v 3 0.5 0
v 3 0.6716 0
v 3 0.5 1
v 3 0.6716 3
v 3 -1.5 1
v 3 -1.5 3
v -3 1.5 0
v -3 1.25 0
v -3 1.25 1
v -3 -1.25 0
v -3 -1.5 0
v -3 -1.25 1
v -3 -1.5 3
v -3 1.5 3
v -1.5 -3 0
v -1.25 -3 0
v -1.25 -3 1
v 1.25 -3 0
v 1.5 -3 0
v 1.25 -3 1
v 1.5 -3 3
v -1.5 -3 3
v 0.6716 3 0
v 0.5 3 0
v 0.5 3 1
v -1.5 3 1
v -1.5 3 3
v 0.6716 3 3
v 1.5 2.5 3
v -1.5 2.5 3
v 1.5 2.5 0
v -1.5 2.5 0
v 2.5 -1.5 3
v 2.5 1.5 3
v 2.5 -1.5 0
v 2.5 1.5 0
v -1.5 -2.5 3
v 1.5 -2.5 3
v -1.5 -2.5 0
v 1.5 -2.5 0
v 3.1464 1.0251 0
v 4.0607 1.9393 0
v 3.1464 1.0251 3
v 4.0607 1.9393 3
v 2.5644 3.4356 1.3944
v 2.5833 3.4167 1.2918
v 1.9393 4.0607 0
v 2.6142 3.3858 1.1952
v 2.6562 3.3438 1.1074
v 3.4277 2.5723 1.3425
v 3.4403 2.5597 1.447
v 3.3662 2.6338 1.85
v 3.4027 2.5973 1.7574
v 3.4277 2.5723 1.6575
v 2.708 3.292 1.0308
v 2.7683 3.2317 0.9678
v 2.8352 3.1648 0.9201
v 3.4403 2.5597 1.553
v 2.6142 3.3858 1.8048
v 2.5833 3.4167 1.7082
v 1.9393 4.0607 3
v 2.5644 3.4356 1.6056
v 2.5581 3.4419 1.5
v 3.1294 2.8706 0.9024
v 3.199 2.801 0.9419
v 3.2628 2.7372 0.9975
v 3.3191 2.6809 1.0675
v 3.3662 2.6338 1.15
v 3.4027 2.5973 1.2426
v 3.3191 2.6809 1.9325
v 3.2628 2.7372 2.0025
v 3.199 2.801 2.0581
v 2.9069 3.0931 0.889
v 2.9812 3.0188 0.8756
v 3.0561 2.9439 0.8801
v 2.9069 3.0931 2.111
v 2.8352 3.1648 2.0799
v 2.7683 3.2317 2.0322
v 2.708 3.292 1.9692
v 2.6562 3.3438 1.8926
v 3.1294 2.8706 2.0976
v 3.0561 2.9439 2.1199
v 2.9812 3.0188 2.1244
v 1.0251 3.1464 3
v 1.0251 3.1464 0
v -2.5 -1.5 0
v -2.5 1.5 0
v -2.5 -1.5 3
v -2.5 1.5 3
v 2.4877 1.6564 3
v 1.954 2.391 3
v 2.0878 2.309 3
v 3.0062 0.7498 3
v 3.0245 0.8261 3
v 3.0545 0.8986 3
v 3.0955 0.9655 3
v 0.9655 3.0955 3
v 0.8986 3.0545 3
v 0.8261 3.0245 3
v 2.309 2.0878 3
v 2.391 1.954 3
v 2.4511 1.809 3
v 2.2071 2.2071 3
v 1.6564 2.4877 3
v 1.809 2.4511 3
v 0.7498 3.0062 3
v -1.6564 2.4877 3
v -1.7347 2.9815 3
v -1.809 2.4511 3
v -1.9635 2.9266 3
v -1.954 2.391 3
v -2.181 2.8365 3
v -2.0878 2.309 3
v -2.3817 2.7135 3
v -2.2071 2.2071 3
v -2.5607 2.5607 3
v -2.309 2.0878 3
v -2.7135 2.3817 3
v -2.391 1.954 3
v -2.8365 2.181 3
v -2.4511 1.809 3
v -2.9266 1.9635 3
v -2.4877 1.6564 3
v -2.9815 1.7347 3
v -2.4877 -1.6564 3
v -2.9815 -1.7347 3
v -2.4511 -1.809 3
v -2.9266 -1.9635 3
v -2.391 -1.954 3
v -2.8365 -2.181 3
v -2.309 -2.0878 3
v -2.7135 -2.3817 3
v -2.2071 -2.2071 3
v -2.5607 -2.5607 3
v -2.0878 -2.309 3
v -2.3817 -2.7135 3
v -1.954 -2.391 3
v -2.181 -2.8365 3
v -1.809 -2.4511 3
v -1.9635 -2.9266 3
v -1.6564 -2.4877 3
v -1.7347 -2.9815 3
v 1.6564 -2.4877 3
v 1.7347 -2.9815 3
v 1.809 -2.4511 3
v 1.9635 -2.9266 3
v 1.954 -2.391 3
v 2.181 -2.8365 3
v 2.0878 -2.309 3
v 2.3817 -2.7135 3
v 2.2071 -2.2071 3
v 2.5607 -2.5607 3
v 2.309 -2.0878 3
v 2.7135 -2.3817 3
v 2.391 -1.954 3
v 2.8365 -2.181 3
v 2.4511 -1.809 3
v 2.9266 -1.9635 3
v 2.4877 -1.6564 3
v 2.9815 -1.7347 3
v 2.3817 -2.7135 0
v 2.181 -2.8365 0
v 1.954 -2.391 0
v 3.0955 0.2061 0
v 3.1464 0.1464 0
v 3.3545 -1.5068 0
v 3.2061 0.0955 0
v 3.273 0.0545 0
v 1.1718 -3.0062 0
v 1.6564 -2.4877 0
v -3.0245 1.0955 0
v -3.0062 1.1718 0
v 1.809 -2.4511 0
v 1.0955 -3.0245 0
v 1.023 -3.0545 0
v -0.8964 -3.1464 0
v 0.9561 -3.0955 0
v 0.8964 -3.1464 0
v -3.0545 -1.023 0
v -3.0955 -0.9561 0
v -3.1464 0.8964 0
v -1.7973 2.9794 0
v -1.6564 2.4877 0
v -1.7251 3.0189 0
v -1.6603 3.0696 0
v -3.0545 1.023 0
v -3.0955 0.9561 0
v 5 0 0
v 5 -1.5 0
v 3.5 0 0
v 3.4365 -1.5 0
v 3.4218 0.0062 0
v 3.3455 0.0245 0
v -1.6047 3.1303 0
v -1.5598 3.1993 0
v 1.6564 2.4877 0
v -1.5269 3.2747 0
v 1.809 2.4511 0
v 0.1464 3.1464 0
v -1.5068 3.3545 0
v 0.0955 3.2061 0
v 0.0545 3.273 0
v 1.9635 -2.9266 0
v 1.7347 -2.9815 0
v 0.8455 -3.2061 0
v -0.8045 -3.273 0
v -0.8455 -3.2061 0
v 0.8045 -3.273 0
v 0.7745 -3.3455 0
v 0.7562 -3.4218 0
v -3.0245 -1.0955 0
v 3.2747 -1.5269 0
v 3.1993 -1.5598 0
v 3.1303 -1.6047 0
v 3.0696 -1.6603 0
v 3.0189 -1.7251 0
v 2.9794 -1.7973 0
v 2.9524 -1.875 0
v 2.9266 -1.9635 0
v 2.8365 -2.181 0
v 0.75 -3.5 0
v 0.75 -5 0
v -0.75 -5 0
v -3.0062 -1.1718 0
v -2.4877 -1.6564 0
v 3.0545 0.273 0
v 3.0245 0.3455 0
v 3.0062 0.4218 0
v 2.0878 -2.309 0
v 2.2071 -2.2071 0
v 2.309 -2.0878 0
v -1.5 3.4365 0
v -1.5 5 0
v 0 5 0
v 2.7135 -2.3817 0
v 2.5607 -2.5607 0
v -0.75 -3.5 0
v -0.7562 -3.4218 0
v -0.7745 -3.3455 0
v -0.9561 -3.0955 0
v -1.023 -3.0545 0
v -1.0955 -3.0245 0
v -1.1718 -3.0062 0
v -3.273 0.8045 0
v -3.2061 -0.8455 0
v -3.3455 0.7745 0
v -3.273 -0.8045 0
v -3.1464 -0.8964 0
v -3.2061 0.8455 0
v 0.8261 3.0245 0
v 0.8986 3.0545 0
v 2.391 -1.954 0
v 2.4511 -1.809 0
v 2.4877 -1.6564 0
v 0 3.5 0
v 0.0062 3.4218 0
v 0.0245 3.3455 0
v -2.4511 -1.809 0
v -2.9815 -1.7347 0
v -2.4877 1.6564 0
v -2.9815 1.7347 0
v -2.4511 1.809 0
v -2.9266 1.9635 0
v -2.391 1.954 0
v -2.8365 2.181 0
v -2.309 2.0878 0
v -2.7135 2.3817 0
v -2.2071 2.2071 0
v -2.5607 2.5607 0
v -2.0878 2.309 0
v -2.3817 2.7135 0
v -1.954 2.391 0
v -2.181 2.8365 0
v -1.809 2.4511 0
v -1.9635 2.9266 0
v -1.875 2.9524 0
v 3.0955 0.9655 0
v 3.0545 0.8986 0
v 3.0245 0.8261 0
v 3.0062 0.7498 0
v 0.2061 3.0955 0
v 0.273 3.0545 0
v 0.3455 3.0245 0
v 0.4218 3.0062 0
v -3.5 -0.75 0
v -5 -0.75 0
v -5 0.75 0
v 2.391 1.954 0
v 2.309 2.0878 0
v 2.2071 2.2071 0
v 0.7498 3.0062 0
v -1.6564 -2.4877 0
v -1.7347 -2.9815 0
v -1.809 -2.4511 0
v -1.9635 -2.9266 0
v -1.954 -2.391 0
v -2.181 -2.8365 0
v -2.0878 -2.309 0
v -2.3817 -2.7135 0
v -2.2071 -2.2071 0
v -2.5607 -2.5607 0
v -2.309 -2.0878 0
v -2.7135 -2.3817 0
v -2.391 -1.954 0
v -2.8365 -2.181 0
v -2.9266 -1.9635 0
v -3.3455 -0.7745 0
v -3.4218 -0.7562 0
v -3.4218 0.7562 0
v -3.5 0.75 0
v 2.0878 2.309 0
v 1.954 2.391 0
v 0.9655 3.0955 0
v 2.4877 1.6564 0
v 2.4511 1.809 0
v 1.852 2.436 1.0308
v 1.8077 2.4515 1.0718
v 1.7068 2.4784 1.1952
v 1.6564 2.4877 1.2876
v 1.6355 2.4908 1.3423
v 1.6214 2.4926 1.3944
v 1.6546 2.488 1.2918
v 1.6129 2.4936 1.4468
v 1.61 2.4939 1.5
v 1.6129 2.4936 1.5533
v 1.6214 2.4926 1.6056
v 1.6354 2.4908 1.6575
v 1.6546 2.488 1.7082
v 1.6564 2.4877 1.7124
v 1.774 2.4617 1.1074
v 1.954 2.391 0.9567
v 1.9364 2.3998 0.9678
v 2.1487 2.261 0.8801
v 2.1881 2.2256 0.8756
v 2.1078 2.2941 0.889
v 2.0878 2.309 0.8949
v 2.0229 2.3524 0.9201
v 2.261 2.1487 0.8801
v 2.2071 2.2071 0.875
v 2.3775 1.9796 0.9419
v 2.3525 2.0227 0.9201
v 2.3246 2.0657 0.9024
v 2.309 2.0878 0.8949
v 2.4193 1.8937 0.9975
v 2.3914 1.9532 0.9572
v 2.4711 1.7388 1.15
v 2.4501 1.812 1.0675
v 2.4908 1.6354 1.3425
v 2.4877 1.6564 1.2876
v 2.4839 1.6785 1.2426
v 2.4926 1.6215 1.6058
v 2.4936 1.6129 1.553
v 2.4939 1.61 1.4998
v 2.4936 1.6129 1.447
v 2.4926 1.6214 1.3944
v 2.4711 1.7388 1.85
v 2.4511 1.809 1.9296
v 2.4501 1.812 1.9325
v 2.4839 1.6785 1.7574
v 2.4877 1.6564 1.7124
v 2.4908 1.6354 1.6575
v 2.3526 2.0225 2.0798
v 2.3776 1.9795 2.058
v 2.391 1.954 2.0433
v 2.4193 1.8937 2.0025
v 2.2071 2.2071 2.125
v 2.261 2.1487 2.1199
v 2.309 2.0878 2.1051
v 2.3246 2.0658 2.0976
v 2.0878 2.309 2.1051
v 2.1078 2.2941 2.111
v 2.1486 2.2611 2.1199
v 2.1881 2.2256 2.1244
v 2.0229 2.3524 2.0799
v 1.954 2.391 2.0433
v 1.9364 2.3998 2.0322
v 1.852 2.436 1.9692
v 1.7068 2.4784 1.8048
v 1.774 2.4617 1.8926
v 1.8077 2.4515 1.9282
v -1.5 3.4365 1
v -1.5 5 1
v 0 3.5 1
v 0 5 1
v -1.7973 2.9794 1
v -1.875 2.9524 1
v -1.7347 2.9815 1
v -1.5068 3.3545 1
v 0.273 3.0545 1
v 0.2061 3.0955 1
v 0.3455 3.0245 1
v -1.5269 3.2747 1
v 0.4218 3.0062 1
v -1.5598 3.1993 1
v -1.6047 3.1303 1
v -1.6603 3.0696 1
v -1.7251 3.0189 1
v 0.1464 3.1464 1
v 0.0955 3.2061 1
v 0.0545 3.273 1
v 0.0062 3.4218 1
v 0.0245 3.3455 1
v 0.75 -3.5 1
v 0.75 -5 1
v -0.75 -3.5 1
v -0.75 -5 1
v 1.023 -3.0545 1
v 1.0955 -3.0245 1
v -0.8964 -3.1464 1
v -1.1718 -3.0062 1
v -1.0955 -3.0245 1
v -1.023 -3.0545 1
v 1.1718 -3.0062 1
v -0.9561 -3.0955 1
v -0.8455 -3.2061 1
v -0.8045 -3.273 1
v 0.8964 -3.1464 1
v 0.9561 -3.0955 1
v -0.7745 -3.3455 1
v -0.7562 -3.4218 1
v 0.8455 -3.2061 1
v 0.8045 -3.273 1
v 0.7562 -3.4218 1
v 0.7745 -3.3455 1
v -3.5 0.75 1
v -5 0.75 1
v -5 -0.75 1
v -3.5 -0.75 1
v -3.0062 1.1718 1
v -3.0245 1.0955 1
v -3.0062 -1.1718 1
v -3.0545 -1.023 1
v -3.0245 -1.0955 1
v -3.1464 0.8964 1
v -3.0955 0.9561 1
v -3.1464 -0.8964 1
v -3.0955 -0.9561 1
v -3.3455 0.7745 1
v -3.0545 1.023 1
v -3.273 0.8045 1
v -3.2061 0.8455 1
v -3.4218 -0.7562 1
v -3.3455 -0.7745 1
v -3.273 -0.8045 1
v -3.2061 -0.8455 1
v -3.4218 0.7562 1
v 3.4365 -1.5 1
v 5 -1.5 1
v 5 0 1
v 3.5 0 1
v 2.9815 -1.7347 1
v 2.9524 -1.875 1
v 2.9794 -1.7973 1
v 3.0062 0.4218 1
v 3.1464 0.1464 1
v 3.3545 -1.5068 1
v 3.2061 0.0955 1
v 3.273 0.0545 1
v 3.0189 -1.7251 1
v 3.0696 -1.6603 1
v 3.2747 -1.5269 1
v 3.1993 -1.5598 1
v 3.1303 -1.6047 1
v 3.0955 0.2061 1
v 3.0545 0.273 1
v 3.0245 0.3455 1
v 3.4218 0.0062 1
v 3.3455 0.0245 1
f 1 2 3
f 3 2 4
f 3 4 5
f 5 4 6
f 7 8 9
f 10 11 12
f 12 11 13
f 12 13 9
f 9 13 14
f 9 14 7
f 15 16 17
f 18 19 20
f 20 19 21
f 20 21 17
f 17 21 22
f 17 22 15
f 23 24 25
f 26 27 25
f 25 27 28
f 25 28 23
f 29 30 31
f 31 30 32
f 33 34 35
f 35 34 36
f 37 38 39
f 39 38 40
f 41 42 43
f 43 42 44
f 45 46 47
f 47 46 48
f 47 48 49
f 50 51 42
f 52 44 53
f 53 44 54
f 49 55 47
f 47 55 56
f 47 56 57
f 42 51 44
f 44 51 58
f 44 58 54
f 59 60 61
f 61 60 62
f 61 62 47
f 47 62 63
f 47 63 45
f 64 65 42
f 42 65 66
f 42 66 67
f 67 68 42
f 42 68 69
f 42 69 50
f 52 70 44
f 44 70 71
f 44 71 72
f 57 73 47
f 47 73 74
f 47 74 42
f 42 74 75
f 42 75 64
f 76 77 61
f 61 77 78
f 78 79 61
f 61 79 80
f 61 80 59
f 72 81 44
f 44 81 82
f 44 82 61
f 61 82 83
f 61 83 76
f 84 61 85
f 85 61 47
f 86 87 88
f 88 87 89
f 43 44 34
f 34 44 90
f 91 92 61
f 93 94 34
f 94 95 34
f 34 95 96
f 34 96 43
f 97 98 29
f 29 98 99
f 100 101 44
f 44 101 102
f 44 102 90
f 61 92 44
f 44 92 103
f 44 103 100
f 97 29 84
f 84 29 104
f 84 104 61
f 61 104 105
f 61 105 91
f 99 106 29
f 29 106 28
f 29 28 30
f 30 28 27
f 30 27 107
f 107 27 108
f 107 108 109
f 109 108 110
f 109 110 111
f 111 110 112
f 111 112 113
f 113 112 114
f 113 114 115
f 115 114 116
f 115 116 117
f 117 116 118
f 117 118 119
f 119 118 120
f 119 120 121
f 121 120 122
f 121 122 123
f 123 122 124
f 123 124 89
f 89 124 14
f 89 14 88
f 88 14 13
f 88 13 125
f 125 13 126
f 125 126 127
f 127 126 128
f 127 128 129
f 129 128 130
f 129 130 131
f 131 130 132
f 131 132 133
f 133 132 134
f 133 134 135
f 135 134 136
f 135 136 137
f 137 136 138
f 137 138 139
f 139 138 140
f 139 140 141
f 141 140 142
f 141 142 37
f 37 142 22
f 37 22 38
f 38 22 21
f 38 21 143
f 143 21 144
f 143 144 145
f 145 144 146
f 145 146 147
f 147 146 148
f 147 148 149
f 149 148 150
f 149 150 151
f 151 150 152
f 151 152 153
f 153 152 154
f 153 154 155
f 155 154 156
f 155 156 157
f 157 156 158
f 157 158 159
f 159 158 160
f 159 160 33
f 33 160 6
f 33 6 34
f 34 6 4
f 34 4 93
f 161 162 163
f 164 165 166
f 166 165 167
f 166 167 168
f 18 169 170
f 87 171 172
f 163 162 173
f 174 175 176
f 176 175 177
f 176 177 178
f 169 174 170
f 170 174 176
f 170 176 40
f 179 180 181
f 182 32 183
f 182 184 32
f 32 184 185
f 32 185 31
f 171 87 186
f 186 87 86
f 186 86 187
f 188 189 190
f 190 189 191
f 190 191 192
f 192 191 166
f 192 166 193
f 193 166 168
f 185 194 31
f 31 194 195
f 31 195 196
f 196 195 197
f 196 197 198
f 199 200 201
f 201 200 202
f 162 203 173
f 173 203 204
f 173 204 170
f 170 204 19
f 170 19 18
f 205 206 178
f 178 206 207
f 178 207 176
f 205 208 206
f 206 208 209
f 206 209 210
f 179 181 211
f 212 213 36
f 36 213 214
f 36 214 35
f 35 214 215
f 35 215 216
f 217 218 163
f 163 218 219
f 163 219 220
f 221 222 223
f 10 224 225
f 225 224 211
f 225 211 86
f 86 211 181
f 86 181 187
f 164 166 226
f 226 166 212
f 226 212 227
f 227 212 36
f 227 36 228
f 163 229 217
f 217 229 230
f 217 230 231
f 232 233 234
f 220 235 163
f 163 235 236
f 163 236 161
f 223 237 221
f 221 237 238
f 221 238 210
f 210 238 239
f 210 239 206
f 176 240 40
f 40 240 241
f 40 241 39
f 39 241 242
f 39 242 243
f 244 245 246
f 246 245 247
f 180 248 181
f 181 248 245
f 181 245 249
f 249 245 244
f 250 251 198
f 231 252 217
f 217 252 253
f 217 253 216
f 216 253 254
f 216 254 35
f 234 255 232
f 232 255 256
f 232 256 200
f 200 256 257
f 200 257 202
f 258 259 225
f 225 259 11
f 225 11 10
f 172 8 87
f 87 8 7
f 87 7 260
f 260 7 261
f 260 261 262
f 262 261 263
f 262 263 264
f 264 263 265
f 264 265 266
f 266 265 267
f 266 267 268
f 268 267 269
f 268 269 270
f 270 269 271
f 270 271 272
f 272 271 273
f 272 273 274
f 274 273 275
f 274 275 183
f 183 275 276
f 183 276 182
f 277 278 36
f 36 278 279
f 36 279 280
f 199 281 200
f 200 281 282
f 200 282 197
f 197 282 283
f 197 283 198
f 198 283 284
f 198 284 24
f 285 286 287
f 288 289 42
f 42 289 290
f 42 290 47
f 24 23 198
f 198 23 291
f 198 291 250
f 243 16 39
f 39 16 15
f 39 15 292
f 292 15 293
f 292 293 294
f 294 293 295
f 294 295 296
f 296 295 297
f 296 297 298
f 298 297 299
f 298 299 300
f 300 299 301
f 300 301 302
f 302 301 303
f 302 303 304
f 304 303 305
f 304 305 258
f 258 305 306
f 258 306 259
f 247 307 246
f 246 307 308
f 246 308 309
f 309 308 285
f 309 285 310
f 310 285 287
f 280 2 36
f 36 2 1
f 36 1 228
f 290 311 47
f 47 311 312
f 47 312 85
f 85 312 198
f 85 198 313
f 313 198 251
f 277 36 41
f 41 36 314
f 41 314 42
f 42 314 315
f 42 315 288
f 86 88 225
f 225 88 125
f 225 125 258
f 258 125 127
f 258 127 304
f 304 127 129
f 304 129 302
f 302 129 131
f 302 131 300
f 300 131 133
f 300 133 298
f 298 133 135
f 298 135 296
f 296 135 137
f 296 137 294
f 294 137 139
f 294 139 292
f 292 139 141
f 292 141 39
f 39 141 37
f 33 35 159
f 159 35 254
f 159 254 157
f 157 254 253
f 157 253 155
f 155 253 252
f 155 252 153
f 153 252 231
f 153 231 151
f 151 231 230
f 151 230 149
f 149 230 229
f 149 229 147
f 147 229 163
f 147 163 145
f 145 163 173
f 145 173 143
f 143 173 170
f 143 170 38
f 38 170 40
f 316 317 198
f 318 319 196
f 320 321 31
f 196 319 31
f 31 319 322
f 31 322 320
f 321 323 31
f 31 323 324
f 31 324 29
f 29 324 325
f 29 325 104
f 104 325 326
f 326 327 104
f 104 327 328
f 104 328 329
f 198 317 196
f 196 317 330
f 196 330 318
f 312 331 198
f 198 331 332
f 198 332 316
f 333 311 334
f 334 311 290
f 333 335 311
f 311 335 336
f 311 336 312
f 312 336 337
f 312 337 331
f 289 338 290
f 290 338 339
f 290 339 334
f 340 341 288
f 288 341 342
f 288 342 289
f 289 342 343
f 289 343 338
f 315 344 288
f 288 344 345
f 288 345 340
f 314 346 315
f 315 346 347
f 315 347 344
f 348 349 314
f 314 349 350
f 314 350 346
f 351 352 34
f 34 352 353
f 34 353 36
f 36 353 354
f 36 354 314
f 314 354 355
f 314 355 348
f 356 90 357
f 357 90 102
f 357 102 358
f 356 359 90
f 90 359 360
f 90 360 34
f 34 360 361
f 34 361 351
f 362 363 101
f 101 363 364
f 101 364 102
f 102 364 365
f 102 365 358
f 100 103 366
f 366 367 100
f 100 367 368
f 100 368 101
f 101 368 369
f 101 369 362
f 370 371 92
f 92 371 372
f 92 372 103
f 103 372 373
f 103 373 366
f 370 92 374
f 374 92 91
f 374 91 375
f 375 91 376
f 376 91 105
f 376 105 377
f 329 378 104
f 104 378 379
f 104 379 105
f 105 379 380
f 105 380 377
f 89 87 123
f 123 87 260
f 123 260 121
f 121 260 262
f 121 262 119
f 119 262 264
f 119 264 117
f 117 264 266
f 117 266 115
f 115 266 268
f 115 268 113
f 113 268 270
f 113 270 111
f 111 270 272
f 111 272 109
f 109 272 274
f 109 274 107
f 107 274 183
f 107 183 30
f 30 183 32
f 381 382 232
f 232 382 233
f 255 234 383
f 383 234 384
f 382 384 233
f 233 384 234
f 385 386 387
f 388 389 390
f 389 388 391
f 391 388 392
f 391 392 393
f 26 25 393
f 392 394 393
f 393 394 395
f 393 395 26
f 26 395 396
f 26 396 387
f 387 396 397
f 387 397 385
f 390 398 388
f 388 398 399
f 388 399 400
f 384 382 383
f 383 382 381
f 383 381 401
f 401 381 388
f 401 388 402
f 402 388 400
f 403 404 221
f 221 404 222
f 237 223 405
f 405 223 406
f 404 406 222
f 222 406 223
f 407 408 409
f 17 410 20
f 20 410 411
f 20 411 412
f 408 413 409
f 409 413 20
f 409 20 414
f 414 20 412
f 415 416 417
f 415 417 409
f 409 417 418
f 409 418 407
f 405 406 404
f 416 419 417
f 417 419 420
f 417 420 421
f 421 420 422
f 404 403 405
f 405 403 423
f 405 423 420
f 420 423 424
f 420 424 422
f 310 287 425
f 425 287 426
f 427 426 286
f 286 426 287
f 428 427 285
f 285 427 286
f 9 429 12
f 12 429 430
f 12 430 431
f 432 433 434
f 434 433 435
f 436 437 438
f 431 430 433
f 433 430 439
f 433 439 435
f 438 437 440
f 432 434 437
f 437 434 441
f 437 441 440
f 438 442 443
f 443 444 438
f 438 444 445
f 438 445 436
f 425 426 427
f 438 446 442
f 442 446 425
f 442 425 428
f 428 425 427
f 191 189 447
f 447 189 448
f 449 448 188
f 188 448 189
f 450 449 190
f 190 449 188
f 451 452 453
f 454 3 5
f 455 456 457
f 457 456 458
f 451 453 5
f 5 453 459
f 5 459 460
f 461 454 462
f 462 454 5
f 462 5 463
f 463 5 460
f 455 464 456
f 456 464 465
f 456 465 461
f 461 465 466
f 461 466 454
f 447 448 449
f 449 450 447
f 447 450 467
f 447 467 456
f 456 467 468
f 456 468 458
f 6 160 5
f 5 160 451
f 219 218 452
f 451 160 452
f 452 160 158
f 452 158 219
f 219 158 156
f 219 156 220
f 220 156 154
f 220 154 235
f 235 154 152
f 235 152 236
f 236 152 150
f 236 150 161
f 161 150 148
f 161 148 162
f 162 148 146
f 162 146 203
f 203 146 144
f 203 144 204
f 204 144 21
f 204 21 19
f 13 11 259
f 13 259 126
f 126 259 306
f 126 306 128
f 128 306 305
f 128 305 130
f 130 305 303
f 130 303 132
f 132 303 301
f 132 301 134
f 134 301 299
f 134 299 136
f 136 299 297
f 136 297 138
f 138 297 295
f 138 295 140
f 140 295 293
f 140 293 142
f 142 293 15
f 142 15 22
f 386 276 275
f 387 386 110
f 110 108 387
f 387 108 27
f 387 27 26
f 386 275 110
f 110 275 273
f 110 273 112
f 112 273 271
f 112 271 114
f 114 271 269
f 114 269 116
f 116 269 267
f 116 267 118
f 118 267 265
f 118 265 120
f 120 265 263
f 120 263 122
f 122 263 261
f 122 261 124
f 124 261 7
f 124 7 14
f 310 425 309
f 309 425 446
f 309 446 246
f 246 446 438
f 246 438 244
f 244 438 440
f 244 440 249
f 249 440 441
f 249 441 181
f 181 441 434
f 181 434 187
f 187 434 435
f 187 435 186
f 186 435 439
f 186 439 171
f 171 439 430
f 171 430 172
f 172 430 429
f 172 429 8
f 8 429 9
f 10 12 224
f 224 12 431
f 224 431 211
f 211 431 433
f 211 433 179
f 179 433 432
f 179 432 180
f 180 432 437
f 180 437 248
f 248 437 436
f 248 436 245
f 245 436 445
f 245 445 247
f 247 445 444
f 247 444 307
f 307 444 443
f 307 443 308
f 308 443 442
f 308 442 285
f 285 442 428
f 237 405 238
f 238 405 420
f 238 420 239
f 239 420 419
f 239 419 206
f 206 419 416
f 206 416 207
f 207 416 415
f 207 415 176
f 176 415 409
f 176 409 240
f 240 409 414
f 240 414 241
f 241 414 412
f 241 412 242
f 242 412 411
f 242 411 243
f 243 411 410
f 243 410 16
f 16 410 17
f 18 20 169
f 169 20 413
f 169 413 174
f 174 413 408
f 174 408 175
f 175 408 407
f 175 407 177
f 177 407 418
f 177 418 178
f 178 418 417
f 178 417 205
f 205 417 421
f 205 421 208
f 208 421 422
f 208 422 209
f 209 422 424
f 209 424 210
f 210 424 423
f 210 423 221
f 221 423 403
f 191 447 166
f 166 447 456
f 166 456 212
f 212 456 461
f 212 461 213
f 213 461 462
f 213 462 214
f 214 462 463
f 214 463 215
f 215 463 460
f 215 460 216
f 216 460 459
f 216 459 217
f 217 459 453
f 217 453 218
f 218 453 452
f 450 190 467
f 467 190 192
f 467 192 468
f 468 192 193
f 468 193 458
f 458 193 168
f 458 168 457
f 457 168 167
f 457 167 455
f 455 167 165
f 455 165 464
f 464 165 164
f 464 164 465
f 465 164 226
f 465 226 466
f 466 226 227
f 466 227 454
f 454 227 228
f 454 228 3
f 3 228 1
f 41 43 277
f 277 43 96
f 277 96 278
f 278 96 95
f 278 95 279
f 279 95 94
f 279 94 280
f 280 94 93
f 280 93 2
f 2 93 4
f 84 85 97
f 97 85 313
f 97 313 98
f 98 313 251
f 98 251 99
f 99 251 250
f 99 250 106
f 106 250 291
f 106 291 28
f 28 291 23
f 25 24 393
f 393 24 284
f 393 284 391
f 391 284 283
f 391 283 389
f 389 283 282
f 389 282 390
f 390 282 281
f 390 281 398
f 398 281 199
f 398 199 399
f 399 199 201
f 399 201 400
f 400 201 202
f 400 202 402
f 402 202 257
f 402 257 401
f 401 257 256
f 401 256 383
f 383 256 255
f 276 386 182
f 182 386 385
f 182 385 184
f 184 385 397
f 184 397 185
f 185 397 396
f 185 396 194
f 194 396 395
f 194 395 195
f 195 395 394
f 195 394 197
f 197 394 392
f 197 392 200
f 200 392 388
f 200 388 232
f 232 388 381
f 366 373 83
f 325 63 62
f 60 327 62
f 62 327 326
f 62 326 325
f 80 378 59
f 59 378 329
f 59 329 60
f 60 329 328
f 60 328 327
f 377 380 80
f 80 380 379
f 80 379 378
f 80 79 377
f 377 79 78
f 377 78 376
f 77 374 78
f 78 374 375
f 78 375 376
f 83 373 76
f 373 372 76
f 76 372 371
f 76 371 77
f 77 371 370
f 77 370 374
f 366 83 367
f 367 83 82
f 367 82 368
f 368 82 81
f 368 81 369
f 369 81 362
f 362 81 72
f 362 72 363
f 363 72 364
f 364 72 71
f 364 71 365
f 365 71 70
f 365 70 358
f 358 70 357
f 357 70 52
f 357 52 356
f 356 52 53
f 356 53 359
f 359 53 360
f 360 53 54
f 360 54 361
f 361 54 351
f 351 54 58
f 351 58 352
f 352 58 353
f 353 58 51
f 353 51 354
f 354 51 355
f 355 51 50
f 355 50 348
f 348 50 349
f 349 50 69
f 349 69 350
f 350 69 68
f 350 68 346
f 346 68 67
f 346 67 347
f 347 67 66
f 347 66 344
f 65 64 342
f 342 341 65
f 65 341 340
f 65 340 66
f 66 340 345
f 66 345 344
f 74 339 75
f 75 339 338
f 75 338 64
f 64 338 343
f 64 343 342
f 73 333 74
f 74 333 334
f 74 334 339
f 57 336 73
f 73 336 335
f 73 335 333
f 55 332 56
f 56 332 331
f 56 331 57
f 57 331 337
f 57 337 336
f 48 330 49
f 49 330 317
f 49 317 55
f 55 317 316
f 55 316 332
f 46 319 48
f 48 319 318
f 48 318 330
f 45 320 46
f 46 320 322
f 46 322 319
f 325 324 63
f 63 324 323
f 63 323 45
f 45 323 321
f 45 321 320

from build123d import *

# Parameters (mm, degrees)
SKIZZE1_W                       = 6
SKIZZE1_H                       = 6
SKIZZE1_W_2                     = 5
SKIZZE1_H_2                     = 5
AUFSATZ_LINEAR_AUSTRAGEN1_DEPTH = 3
VERRUNDUNG1_R                   = 1
SKIZZE2_W                       = 1.5
SKIZZE2_H                       = 2
SKIZZE2_W_2                     = 2
SKIZZE2_H_2                     = 1.5
AUFSATZ_LINEAR_AUSTRAGEN2_DEPTH = 1
VERRUNDUNG2_R                   = 1.5
VERRUNDUNG3_R                   = 0.5
M1_6_GEWINDEBOHRUNG5_D          = 1.25
M1_6_GEWINDEBOHRUNG5_DEPTH      = 3.09
M1_6_GEWINDEBOHRUNG5_TIP        = 0.625


with BuildPart() as part:
    # Skizze1 → Aufsatz-Linear austragen1 (new body)
    with BuildSketch(Plane.XY):
        Rectangle(SKIZZE1_W, SKIZZE1_H)
        Rectangle(SKIZZE1_W_2, SKIZZE1_H_2, mode=Mode.SUBTRACT)
        Polygon((1.939339828, 4.060660172), (0.878679656, 3), (3, 3), align=None)
        Polygon((4.060660172, 1.939339828), (3, 3), (3, 0.878679656), align=None)
    extrude(amount=AUFSATZ_LINEAR_AUSTRAGEN1_DEPTH)

    # Verrundung1
    verrundung1_edges = [part.edges().sort_by_distance(p)[0] for p in [
        (-2.5, 2.5, 1.5),
        (-2.5, -2.5, 1.5),
        (2.5, -2.5, 1.5),
        (2.5, 2.5, 1.5),
    ]]
    fillet(verrundung1_edges, radius=VERRUNDUNG1_R)

    # Skizze2 → Aufsatz-Linear austragen2 (add)
    with BuildSketch(Plane.XY):
        with Locations((-0.75, 4)):
            Rectangle(SKIZZE2_W, SKIZZE2_H)
        with Locations((0, -4)):
            Rectangle(SKIZZE2_W, SKIZZE2_H)
        with Locations((-4, 0)):
            Rectangle(SKIZZE2_W_2, SKIZZE2_H_2)
        with Locations((4, -0.75)):
            Rectangle(SKIZZE2_W_2, SKIZZE2_H_2)
    extrude(amount=AUFSATZ_LINEAR_AUSTRAGEN2_DEPTH)

    # Verrundung2
    verrundung2_edges = [part.edges().sort_by_distance(p)[0] for p in [
        (3, -3, 1.5),
        (-3, -3, 1.5),
        (-3, 3, 1.5),
    ]]
    fillet(verrundung2_edges, radius=VERRUNDUNG2_R)

    # Verrundung3
    verrundung3_edges = [part.edges().sort_by_distance(p)[0] for p in [
        (3, 0, 0.5),
        (3, -1.5, 0.5),
        (0.878679656, 3, 1.5),
        (3, 0.878679656, 1.5),
        (-1.5, 3, 0.5),
        (0, 3, 0.5),
        (0.75, -3, 0.5),
        (-0.75, -3, 0.5),
        (-3, -0.75, 0.5),
        (-3, 0.75, 0.5),
    ]]
    fillet(verrundung3_edges, radius=VERRUNDUNG3_R)

    # M1.6 Gewindebohrung5
    with Locations(Plane(origin=(3, 3, 0), x_dir=(0.707106781, -0.707106781, 0), z_dir=(0.707106781, 0.707106781, 0))):
        with Locations((0, -1.5)):
            Hole(M1_6_GEWINDEBOHRUNG5_D / 2, depth=M1_6_GEWINDEBOHRUNG5_DEPTH)
            with Locations((0, 0, -(M1_6_GEWINDEBOHRUNG5_DEPTH + M1_6_GEWINDEBOHRUNG5_TIP / 2))):  # 90° drill point
                Cone(0, M1_6_GEWINDEBOHRUNG5_D / 2, M1_6_GEWINDEBOHRUNG5_TIP, mode=Mode.SUBTRACT)


solid = part.part
